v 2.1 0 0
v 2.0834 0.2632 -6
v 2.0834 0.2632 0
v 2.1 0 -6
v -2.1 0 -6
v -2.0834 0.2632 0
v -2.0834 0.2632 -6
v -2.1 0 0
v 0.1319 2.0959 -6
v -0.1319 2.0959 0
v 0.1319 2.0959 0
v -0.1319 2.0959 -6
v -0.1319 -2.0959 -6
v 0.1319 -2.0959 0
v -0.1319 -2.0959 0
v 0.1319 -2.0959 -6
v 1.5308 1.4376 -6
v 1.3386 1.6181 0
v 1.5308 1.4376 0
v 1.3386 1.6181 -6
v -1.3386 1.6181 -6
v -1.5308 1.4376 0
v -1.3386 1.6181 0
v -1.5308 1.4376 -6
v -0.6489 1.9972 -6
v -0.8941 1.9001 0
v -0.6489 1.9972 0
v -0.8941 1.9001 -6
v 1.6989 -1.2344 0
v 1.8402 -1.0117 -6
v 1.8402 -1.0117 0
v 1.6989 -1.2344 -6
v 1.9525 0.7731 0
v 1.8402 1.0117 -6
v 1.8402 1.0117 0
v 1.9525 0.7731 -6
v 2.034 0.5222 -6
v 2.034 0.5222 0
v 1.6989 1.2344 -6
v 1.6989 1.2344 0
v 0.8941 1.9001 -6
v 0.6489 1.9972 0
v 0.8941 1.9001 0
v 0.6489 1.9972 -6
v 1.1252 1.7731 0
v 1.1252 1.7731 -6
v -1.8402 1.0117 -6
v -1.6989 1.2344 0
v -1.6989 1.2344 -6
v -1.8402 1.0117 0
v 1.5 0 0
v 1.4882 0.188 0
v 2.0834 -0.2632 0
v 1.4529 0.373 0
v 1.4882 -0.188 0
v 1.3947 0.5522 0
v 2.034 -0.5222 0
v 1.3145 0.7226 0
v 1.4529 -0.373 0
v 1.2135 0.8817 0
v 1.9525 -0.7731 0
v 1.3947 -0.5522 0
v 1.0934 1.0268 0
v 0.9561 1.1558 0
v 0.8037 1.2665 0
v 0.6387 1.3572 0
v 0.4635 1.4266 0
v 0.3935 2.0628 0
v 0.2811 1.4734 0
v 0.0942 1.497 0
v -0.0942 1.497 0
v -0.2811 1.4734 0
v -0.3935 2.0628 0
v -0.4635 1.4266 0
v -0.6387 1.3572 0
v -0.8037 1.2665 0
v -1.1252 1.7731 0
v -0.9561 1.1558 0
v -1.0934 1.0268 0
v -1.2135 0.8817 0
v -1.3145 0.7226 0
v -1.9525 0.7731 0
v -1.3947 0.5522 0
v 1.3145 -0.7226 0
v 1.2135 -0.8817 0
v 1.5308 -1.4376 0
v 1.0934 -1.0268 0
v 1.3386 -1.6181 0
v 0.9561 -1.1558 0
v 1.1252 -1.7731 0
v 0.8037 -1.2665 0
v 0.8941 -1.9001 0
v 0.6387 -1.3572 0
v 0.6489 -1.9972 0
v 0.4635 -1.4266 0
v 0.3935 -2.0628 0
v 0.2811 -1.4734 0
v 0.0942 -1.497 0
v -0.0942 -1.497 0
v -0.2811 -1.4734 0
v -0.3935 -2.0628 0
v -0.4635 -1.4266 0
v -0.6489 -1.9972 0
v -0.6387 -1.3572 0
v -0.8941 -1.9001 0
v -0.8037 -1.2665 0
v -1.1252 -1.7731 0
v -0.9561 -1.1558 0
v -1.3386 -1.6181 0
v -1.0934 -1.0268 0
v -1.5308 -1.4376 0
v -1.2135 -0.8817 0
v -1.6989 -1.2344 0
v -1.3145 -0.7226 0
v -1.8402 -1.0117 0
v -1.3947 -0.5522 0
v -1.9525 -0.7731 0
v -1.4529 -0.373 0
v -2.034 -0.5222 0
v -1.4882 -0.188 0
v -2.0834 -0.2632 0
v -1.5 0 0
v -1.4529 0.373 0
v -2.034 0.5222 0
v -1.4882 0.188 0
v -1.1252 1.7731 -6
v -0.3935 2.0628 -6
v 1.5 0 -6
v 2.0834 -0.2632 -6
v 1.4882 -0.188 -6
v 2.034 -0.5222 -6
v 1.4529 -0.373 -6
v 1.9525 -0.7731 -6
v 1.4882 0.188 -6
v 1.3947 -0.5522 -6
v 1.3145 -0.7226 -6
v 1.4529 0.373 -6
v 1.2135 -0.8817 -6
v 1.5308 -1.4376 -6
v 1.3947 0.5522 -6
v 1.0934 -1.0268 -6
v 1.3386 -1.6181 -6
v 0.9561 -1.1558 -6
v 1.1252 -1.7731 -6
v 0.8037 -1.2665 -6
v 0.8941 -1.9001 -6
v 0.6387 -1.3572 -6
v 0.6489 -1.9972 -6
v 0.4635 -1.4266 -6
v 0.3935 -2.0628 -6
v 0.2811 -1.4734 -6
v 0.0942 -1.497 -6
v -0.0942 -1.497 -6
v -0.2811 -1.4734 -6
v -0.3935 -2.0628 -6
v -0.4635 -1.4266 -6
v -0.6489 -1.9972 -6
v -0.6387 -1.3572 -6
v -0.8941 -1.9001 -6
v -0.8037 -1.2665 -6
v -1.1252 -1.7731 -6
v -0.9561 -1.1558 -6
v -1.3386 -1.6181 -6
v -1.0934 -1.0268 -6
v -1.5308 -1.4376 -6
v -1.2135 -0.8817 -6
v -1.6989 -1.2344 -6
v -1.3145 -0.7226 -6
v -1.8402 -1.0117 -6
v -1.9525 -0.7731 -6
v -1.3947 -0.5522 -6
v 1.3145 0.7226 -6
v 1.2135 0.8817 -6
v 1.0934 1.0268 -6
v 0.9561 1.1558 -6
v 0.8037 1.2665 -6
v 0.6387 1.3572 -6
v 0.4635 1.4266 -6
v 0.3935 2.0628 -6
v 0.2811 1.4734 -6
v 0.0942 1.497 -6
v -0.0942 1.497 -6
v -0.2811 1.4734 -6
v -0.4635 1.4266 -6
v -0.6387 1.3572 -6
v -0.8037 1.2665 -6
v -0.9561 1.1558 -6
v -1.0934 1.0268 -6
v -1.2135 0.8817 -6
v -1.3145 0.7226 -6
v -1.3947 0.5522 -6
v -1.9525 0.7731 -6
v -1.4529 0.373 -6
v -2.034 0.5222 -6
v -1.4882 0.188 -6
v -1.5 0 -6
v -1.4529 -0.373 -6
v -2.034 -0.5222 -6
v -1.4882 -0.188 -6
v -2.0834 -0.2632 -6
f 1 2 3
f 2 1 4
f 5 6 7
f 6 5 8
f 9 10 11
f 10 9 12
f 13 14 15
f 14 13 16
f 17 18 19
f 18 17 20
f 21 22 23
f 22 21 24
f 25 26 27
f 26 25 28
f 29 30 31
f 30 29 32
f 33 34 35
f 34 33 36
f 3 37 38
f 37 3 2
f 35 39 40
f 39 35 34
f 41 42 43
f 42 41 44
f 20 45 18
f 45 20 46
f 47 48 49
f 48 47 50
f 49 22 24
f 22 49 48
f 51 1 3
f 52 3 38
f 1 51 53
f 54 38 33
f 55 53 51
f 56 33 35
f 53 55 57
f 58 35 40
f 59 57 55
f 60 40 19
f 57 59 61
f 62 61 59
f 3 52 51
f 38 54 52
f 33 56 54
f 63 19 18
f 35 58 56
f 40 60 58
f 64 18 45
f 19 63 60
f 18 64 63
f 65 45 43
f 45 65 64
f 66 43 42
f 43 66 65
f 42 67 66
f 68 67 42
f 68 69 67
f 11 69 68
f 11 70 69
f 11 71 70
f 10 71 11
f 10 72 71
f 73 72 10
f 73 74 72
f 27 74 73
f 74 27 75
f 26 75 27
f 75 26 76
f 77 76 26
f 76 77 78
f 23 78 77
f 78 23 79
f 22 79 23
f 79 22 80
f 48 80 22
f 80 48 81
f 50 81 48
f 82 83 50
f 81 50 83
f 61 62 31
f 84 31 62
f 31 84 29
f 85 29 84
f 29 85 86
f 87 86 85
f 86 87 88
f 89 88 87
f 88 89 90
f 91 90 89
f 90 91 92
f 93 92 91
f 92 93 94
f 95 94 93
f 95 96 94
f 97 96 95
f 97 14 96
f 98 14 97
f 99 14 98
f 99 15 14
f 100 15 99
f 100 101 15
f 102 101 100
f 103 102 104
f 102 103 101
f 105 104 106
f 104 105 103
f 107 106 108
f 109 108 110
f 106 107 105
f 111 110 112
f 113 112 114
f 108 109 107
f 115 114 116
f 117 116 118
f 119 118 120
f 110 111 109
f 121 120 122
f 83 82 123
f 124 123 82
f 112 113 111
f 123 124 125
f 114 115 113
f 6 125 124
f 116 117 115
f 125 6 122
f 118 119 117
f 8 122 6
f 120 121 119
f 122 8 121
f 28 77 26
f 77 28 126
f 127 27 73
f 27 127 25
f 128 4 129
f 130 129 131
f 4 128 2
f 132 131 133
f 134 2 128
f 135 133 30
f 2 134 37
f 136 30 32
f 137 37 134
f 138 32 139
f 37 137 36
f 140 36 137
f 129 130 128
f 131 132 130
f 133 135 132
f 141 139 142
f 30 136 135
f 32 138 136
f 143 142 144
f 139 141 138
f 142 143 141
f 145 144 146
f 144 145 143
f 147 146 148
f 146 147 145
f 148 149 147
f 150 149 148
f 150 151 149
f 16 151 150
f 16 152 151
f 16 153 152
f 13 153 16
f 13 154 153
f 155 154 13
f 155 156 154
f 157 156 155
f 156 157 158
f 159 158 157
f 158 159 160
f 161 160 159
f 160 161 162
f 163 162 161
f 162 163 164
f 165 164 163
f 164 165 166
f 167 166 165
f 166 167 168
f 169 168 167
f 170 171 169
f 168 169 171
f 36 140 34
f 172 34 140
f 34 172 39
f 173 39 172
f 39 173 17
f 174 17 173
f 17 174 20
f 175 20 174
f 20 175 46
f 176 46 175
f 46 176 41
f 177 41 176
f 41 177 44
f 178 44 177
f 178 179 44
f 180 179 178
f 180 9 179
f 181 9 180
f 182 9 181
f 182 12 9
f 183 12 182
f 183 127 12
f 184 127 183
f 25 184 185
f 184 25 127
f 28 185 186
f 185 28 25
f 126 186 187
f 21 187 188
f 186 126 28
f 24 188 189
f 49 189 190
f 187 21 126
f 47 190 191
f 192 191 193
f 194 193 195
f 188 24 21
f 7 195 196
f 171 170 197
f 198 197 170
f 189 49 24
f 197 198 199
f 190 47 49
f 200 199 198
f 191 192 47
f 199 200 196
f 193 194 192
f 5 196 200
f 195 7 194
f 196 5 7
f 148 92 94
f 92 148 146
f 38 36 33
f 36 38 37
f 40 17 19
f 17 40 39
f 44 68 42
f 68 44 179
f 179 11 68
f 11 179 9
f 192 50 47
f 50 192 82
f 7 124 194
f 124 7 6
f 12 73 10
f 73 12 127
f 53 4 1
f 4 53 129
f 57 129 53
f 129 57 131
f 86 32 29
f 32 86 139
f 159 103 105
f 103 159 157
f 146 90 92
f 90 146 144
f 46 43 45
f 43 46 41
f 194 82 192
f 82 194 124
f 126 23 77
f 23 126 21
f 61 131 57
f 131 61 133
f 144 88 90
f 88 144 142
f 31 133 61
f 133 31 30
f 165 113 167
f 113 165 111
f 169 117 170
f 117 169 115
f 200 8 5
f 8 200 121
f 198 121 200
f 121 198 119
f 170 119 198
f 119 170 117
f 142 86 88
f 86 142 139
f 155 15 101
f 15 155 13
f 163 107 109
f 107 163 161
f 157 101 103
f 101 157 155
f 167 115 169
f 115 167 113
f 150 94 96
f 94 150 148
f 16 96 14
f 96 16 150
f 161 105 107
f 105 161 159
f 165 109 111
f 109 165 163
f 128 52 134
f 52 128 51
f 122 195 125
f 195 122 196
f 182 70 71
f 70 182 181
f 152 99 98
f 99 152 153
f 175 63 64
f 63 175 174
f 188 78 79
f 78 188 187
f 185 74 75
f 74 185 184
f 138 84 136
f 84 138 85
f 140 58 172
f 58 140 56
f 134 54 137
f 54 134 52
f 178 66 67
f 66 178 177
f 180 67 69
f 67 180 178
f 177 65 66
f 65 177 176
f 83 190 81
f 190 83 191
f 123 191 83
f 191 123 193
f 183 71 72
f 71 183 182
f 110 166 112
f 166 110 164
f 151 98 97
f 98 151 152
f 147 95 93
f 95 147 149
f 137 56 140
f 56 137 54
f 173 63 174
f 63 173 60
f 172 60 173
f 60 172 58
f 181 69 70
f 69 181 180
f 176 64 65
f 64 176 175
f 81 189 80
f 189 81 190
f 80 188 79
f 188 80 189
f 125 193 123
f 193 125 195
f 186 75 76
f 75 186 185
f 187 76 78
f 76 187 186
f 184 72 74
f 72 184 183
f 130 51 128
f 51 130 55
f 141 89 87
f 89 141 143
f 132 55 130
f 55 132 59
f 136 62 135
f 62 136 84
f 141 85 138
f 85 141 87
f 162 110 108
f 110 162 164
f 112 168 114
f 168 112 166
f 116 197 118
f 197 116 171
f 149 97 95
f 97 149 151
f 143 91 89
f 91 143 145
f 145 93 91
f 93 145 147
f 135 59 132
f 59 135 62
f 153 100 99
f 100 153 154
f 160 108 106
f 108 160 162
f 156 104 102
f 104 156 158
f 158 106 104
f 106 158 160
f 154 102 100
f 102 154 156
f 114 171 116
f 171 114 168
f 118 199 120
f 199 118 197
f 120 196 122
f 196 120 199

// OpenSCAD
$fn = 50;


difference() {
	union() {
		translate(v = [0, 0, -6.0000000000]) {
			rotate(a = [0, 0, 0]) {
				cylinder(h = 6, r = 2.1000000000);
			}
		}
		translate(v = [0, 0, -6.0000000000]) {
			rotate(a = [0, 0, 0]) {
				cylinder(h = 6, r = 2.1000000000);
			}
		}
		translate(v = [0, 0, -6.0000000000]) {
			rotate(a = [0, 0, 0]) {
				cylinder(h = 6, r = 2.1000000000);
			}
		}
	}
	union() {
		translate(v = [0, 0, -10]) {
			rotate(a = [0, 0, 0]) {
				cylinder(h = 100, r = 1.5000000000);
			}
		}
	}
}
